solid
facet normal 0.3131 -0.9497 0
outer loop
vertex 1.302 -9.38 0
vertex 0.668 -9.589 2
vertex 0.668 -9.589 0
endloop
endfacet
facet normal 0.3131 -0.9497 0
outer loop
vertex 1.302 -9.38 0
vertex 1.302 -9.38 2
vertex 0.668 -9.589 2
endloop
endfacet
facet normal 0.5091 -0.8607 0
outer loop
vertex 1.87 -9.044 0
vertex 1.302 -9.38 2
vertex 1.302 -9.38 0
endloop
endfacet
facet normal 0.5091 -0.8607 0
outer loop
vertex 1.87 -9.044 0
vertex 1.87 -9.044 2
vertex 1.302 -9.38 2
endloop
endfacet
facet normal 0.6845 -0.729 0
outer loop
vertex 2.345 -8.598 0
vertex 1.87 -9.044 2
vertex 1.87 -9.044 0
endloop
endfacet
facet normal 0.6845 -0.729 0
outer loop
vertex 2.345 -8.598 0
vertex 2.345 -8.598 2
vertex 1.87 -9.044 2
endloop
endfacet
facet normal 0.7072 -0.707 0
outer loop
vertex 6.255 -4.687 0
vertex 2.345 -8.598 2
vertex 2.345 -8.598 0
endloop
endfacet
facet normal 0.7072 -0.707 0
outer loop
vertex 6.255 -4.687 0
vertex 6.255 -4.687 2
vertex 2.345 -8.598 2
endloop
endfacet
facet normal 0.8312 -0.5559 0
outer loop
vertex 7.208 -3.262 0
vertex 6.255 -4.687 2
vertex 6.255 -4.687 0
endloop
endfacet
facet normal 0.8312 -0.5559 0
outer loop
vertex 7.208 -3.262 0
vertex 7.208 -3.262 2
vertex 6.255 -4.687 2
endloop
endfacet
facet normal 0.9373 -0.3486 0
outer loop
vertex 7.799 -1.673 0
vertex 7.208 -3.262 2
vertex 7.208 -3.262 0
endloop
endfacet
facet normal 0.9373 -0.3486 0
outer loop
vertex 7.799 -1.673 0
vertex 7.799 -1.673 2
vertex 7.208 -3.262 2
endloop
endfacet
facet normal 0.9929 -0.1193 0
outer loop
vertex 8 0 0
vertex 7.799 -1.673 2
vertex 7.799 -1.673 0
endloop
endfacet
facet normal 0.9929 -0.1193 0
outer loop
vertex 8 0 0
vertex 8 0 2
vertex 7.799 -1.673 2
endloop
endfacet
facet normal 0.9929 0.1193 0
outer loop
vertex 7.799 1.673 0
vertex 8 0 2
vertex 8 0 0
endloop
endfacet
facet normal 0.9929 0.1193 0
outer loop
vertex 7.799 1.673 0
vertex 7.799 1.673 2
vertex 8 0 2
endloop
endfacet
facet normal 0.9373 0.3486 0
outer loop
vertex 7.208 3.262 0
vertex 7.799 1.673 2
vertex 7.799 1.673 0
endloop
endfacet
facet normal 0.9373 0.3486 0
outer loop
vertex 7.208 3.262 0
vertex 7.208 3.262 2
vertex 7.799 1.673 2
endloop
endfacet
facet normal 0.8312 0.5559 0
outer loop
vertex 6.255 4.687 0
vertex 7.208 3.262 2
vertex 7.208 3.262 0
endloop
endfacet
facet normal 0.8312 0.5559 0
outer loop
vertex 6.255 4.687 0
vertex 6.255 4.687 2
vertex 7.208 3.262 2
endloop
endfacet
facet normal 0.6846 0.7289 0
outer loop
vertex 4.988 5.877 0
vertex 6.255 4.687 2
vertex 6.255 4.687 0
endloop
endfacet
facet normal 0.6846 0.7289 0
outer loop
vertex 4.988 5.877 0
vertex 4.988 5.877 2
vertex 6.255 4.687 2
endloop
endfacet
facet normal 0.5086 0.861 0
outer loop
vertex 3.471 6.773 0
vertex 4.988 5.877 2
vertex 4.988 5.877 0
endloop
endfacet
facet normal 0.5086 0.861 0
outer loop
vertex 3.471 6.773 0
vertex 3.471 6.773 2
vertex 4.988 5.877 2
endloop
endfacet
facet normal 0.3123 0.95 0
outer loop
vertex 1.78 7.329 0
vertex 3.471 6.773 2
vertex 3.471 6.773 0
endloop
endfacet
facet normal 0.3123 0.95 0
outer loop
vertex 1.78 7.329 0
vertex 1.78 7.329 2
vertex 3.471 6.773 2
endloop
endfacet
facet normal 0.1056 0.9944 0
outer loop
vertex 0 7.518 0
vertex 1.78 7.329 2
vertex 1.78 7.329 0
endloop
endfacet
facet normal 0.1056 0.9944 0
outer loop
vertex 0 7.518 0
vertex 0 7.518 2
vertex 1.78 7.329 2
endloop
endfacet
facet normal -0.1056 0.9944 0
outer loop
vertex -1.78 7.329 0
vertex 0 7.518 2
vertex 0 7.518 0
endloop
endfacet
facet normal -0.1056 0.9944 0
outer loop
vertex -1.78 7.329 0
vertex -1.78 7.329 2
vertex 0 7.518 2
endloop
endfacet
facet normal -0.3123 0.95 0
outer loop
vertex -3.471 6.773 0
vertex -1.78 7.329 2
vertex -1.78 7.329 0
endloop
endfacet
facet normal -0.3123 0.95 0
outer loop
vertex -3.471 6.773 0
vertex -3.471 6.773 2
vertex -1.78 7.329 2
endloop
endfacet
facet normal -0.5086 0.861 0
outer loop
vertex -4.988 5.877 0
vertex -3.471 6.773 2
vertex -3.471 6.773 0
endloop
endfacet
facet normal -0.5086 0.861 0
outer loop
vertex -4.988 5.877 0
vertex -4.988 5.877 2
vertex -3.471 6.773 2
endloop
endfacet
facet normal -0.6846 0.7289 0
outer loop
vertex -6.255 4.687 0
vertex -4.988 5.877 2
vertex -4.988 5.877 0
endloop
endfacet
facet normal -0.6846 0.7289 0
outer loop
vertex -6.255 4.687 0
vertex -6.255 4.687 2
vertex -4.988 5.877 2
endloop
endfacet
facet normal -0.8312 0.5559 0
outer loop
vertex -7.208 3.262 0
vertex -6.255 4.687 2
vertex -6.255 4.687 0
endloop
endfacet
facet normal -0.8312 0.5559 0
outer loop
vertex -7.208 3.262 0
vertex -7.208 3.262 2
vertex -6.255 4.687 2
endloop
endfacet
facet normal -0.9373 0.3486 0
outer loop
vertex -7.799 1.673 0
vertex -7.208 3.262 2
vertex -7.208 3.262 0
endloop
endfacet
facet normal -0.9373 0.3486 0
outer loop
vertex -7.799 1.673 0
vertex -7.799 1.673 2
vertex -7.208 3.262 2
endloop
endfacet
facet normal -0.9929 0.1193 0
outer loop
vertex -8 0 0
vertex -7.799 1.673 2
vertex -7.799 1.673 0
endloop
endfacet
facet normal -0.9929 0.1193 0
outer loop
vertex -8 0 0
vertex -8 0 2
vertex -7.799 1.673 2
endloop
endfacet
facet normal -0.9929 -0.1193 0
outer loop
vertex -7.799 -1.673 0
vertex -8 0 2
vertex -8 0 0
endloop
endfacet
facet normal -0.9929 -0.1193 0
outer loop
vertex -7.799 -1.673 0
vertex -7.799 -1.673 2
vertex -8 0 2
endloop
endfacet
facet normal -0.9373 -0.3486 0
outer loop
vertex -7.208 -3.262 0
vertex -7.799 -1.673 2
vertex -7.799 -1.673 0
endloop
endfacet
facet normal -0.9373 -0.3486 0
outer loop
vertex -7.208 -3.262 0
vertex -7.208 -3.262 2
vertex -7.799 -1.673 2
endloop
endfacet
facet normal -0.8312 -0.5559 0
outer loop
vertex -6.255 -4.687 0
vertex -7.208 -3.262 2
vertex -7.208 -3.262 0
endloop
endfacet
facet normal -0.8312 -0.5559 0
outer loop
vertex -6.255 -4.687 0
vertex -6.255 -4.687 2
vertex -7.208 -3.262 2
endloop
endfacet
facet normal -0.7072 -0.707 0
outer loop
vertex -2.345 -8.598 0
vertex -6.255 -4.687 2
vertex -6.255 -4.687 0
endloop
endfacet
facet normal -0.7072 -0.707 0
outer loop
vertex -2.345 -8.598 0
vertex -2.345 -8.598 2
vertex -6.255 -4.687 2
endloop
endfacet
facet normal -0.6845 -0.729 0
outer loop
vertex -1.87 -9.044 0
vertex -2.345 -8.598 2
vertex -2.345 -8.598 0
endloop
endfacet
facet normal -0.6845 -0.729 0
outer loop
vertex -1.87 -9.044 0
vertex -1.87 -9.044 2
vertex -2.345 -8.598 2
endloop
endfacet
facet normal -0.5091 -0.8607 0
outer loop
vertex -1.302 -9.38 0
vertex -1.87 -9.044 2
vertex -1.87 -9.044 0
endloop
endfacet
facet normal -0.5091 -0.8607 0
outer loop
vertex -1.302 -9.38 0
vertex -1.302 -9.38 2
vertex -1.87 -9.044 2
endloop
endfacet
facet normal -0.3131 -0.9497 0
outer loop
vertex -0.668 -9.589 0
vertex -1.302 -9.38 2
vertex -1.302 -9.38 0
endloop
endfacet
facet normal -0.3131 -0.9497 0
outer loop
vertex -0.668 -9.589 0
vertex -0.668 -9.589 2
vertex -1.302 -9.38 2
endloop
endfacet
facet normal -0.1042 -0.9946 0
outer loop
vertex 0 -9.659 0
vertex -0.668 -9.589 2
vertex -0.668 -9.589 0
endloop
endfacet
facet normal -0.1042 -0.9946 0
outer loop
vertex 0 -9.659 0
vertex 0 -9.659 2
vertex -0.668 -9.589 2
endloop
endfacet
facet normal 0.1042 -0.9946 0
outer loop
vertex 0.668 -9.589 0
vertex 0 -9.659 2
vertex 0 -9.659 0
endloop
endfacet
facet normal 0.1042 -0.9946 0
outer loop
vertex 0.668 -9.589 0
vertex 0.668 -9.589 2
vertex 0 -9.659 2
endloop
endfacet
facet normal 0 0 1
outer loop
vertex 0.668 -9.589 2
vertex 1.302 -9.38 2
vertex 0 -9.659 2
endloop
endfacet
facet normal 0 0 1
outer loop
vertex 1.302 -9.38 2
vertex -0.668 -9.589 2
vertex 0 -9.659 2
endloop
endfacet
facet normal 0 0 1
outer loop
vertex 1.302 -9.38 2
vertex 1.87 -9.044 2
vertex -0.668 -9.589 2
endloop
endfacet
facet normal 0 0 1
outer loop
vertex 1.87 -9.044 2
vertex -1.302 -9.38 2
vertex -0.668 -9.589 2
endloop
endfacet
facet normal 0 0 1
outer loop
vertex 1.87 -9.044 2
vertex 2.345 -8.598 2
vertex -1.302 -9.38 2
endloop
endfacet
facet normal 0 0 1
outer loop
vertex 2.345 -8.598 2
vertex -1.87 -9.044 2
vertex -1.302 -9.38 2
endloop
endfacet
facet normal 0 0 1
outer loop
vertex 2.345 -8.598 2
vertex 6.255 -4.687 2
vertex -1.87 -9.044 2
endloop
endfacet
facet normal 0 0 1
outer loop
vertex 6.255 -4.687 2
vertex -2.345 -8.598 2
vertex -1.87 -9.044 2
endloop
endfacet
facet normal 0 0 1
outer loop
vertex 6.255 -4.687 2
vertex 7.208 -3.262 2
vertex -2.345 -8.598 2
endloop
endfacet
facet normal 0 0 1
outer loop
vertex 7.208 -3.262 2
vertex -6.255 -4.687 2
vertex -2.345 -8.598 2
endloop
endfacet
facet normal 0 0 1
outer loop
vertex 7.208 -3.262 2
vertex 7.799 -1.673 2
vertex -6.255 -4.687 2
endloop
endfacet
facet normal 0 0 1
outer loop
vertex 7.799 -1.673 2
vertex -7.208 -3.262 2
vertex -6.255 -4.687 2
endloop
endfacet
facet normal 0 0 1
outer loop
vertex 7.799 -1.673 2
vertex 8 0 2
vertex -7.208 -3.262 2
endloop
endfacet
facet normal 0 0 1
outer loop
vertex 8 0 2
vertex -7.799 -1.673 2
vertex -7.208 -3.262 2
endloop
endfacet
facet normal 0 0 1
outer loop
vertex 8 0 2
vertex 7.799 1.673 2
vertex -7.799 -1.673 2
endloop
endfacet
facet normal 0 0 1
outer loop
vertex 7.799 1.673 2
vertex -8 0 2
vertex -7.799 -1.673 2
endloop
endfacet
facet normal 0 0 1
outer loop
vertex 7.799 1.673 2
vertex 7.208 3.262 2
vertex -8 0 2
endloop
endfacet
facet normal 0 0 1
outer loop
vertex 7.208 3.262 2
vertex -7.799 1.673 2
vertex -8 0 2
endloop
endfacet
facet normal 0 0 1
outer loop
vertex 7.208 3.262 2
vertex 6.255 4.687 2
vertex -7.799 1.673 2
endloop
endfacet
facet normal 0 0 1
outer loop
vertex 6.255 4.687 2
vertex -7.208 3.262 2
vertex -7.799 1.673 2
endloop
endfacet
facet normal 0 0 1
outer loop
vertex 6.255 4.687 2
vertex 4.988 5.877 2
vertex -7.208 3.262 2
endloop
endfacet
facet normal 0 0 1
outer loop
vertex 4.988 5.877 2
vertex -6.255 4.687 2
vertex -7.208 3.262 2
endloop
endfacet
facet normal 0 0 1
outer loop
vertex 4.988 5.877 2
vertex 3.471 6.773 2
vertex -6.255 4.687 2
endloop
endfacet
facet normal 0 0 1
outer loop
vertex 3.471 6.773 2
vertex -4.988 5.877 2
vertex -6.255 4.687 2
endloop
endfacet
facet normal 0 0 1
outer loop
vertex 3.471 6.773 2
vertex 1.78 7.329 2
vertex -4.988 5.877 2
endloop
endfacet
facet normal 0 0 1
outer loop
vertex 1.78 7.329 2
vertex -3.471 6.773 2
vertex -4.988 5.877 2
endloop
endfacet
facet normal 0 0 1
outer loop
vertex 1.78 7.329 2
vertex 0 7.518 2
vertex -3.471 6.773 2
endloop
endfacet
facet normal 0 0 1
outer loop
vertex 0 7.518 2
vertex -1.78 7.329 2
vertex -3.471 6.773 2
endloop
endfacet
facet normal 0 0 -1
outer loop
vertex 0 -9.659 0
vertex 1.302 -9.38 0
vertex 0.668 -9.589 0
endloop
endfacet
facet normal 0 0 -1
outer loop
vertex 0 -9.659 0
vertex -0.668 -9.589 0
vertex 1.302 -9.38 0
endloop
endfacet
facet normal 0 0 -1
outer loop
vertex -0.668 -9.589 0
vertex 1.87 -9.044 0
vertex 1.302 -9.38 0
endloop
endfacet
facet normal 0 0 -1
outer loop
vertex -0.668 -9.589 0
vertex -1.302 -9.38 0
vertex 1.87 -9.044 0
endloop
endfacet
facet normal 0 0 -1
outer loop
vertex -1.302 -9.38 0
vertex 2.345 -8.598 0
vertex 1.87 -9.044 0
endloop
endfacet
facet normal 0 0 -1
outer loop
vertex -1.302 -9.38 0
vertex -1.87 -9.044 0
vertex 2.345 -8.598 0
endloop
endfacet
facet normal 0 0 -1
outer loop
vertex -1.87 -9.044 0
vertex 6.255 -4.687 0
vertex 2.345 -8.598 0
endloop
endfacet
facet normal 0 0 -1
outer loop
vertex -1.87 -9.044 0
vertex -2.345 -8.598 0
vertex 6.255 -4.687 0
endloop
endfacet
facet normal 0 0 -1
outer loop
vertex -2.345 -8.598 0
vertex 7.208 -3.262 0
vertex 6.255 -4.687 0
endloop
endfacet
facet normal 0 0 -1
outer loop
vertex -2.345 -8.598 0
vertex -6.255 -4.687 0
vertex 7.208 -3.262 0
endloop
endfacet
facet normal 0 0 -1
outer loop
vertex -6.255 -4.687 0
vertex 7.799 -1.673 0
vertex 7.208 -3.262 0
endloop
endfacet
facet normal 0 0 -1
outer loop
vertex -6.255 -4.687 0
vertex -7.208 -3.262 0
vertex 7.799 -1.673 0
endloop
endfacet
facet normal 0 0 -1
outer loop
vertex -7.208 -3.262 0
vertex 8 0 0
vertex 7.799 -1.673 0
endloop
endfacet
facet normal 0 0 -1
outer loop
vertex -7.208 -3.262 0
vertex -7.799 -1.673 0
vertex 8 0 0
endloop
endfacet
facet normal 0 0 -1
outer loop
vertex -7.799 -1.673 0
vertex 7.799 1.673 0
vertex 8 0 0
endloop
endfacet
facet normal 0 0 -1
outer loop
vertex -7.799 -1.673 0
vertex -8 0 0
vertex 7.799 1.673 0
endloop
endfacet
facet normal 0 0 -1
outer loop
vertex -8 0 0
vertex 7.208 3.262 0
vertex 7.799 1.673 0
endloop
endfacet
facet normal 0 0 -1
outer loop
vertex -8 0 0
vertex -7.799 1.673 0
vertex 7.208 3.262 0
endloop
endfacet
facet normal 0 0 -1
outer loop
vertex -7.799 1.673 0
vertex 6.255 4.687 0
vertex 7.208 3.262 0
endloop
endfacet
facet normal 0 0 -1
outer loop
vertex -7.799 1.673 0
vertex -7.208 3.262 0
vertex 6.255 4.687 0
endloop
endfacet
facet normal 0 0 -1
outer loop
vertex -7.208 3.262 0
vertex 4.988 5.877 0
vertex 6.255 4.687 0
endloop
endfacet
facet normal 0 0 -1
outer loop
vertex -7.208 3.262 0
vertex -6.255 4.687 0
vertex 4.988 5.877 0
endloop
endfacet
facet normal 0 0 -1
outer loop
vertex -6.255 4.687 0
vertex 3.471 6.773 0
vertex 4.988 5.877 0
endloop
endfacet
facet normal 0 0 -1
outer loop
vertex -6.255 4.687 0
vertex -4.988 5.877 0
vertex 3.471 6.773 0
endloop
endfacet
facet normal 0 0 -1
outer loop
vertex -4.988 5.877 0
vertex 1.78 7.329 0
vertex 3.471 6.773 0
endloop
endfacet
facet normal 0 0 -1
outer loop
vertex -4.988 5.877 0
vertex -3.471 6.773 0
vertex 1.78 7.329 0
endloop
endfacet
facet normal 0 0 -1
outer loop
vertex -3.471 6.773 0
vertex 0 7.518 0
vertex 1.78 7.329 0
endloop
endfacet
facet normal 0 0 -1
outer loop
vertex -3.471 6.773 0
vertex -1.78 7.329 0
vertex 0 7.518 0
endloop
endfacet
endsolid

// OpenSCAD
// projection() flattens the silhouette; extruded so it is a solid to measure.
$fn = 28;
linear_extrude(2) projection()
  rotate([20, 0, 0]) cylinder(h = 20, r1 = 8, r2 = 3);
